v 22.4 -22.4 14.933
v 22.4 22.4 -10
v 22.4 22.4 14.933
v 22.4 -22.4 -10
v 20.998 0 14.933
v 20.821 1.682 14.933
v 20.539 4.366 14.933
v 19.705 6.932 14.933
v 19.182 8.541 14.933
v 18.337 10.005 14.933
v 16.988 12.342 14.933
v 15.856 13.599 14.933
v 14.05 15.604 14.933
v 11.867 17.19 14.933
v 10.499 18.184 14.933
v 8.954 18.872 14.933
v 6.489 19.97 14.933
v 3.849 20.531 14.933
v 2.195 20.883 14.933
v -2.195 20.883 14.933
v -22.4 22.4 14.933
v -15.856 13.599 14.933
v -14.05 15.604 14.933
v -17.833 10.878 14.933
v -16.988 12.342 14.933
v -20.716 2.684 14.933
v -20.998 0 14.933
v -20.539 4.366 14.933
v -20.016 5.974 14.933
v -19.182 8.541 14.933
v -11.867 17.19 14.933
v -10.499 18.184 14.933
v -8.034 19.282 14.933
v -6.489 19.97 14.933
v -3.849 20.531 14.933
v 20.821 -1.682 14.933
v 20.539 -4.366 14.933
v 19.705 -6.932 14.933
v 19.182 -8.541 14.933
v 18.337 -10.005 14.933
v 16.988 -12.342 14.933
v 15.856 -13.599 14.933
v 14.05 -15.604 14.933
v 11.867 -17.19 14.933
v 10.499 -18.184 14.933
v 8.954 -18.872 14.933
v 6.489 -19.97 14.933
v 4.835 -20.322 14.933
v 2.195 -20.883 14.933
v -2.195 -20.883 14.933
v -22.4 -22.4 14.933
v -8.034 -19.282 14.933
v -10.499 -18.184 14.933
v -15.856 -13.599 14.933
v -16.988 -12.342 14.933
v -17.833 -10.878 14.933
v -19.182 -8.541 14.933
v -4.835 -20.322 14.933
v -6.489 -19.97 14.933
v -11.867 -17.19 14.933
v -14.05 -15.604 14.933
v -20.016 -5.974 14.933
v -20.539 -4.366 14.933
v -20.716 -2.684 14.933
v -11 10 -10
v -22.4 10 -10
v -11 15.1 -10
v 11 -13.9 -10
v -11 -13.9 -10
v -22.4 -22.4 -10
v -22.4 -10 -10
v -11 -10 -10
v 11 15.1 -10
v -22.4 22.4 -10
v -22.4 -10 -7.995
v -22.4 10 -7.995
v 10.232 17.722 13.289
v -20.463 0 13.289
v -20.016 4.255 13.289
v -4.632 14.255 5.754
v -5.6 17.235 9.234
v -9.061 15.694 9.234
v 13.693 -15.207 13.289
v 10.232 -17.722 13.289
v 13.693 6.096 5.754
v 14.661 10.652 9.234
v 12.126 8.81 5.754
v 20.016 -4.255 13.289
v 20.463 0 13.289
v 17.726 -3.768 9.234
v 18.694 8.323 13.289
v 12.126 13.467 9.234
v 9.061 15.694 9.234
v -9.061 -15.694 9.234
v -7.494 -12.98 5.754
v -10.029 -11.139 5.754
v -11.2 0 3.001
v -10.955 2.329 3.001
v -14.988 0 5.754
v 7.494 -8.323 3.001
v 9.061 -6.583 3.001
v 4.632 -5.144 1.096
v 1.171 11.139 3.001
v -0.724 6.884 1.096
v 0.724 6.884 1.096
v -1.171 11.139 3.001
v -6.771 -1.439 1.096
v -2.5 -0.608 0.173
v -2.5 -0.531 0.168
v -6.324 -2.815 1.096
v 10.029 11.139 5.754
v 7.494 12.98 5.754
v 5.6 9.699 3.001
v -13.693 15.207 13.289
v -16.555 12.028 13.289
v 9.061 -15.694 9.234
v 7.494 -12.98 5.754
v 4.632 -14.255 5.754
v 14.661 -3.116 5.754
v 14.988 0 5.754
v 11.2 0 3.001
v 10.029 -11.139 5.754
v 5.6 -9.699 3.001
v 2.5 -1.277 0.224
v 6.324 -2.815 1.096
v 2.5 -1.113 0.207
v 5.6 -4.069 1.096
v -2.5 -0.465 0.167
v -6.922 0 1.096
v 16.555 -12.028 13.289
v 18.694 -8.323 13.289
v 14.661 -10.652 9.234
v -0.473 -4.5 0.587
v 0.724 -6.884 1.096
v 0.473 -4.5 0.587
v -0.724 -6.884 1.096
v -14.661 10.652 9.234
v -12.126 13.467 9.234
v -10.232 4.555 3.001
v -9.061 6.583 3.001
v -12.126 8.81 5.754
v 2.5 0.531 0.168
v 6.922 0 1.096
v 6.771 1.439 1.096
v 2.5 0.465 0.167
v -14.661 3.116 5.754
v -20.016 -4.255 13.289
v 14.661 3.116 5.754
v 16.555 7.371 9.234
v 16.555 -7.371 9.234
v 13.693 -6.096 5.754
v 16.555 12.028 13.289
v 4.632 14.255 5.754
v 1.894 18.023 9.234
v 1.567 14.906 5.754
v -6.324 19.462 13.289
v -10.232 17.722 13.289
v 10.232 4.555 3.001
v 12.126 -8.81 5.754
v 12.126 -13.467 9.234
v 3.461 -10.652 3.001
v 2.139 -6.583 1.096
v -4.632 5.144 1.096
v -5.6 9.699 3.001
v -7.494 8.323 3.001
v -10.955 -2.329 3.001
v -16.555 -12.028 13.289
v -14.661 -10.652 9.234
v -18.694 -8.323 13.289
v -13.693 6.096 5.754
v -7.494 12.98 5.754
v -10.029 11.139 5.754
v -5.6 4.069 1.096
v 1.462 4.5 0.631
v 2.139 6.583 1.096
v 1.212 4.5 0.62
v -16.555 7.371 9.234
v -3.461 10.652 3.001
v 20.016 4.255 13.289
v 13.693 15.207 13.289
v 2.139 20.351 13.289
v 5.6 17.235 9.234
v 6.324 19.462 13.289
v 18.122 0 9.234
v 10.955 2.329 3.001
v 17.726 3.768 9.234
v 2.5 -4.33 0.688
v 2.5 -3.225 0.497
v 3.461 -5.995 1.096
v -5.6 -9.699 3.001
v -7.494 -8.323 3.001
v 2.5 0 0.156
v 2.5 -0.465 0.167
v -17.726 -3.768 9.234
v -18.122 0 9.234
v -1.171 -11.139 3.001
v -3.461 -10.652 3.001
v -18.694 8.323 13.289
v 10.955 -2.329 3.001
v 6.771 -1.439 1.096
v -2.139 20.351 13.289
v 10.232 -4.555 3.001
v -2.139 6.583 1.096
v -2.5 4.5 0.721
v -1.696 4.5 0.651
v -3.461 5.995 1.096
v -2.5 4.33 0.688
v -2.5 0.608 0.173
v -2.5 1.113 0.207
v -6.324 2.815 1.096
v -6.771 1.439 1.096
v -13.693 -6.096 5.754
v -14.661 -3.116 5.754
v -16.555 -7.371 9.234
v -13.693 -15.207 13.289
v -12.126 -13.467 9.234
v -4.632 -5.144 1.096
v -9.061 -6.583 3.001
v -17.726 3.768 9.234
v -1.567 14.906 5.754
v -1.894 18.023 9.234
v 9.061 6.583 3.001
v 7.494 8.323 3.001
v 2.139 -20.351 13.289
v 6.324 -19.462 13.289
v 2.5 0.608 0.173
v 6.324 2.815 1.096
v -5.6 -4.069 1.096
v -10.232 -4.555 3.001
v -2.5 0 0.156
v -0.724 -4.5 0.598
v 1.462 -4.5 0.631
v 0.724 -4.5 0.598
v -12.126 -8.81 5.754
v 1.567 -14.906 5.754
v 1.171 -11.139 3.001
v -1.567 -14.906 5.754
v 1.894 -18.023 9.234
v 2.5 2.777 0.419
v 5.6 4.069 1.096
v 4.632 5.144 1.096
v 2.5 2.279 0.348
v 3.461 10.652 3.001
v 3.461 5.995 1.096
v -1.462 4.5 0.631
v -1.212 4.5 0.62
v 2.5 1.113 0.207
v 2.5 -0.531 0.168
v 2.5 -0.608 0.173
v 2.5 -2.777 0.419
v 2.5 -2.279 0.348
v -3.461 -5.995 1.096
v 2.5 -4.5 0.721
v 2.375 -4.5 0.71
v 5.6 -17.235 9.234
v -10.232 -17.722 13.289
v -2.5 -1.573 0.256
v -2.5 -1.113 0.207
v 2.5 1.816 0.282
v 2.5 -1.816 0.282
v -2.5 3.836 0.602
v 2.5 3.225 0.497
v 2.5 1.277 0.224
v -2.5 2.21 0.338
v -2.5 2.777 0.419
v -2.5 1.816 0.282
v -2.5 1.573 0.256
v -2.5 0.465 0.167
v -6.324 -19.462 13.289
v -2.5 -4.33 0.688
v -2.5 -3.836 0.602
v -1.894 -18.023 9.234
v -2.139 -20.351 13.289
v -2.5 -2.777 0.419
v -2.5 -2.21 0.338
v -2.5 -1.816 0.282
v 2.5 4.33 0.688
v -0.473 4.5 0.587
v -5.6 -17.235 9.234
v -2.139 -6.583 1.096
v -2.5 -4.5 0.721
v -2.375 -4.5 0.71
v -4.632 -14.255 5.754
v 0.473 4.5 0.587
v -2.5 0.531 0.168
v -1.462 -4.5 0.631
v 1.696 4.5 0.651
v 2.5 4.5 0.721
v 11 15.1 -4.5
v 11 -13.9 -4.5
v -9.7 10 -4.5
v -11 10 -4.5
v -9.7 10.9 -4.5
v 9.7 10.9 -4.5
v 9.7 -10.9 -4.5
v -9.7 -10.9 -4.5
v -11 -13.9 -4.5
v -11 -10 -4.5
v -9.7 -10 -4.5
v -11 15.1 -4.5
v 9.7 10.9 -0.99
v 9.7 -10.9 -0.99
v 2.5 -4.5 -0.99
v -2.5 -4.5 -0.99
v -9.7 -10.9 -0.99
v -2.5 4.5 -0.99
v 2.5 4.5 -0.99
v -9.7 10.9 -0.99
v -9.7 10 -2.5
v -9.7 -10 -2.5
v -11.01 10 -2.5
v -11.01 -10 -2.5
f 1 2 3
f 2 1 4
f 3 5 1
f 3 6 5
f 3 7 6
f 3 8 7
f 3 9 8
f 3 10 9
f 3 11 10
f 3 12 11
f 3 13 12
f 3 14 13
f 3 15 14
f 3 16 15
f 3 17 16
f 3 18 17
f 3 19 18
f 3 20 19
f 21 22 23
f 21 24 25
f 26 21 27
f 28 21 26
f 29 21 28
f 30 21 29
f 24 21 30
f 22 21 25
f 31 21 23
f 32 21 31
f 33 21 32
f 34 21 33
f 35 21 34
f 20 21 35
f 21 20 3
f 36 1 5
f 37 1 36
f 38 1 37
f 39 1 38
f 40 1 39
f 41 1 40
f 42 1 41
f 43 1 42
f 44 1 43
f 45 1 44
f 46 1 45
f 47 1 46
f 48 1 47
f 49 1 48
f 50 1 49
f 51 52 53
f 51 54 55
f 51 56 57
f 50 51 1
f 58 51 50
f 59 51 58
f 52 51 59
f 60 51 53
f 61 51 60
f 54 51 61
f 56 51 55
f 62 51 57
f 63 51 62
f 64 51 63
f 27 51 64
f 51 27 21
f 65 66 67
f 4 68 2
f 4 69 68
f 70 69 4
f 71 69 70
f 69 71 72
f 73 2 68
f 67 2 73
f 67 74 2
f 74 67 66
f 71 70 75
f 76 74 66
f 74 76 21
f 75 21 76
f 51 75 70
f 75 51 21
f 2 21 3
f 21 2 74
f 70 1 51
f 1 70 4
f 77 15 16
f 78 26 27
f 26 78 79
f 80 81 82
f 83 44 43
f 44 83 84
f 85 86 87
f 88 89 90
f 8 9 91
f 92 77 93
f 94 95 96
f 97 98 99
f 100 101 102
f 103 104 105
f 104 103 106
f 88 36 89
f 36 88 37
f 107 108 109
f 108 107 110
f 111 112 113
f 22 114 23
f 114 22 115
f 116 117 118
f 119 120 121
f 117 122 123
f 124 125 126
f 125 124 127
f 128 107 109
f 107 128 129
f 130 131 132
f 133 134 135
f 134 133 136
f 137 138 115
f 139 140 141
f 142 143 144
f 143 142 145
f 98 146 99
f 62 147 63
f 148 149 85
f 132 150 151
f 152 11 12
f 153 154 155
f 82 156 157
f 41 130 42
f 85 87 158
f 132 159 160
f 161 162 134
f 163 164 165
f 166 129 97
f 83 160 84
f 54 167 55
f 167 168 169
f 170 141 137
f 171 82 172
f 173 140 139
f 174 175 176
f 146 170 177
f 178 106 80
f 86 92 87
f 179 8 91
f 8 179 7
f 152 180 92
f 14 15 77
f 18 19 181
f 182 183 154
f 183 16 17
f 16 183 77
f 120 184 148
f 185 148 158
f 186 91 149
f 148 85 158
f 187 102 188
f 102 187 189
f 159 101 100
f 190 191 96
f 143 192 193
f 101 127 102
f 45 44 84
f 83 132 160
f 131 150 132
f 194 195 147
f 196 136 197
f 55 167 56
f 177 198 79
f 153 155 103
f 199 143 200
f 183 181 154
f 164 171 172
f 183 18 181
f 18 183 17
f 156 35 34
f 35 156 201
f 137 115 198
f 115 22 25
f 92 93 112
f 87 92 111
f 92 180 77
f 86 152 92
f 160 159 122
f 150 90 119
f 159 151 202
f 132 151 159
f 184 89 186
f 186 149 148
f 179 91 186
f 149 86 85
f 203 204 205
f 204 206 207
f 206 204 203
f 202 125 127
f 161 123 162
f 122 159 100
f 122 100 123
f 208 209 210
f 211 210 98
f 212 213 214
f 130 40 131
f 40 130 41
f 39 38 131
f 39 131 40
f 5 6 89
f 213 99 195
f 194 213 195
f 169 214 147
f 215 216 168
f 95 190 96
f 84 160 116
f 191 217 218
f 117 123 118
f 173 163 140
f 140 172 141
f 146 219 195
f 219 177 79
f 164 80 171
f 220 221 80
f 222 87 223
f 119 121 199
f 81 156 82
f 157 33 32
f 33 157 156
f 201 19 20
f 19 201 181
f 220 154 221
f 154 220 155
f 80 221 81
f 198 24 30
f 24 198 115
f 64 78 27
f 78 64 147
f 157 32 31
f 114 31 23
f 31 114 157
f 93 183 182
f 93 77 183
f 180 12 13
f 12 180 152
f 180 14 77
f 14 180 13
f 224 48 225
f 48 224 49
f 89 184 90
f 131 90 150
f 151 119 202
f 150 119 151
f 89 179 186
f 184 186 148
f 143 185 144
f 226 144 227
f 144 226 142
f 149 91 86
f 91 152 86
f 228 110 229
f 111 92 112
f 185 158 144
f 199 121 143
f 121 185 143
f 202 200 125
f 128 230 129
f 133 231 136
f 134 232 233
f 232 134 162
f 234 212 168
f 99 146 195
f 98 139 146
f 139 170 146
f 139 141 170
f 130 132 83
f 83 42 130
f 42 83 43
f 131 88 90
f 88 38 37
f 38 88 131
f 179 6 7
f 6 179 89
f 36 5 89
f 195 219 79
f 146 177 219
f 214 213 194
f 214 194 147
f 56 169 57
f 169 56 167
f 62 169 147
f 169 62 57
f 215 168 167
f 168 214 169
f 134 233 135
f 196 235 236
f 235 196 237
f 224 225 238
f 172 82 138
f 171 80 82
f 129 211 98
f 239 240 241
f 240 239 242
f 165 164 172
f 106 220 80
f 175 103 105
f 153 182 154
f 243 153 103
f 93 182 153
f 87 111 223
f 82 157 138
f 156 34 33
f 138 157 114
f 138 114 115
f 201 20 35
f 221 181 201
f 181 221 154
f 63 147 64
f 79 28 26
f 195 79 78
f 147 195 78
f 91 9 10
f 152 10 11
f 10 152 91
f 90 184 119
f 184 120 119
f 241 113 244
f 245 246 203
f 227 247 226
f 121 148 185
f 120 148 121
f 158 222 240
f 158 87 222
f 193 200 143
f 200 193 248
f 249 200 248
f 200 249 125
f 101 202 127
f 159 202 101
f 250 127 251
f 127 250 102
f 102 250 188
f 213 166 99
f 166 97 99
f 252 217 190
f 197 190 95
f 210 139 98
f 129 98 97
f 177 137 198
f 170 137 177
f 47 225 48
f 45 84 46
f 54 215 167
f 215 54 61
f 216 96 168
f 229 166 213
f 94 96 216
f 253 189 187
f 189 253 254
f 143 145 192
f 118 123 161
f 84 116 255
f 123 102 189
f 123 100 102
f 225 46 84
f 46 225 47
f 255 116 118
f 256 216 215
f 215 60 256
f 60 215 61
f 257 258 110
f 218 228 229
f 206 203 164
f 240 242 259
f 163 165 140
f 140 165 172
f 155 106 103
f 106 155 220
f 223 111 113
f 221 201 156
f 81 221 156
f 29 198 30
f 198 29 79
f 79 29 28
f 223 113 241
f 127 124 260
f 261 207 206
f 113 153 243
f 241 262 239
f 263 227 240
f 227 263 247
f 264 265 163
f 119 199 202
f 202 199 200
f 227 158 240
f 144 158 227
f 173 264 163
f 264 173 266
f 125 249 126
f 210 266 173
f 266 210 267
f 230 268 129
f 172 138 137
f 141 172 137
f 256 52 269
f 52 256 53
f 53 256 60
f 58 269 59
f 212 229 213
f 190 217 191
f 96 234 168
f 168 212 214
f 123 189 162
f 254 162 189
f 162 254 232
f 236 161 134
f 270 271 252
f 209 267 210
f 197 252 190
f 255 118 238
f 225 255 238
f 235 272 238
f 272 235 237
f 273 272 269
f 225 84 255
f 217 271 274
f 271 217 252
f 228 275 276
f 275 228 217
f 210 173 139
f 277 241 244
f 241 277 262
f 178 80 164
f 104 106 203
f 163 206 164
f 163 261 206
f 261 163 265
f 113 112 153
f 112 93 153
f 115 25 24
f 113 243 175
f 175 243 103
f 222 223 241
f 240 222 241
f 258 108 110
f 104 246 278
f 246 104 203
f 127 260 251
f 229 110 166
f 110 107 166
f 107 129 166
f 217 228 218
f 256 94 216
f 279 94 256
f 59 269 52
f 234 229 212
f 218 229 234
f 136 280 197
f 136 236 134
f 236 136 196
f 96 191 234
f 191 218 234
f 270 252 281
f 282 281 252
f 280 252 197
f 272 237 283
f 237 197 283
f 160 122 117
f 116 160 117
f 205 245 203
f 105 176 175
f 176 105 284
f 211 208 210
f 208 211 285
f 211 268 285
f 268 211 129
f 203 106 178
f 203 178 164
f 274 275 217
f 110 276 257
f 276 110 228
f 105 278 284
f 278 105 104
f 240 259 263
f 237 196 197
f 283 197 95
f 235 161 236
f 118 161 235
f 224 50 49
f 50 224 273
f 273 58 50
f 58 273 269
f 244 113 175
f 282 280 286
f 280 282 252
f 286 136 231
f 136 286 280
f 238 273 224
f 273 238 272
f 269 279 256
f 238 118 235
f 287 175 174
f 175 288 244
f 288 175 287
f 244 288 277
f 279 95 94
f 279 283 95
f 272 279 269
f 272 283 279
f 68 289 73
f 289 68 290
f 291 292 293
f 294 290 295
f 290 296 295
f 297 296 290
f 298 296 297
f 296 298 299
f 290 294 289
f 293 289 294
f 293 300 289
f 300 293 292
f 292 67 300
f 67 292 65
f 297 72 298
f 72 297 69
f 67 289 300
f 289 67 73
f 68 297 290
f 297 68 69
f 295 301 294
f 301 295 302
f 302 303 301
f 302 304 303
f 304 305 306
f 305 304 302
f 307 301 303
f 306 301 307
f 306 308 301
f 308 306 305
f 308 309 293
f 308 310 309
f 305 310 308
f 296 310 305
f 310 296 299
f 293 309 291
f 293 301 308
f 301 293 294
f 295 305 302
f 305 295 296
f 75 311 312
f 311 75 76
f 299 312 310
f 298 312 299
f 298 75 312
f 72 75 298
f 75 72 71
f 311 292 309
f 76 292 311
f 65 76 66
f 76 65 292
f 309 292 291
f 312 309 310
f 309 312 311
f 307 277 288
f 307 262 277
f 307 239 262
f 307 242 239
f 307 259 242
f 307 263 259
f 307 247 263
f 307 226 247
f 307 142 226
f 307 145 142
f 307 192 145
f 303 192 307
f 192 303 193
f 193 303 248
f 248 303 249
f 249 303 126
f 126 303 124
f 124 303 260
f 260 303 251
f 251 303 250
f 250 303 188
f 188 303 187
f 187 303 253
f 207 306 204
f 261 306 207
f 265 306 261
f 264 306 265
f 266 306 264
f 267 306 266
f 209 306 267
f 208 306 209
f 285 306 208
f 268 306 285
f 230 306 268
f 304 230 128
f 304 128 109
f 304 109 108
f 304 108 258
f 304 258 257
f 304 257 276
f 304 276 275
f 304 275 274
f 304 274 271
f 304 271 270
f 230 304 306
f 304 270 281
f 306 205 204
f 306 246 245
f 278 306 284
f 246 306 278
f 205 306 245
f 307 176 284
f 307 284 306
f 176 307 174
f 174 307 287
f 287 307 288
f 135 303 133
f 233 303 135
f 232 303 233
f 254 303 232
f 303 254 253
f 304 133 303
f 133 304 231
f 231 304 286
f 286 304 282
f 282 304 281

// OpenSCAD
track_stand();

module track_stand() {
  e = 0.01;

	ball_dia = 44.3;
  ball_tolerance = 0.5;
  hole_dia = ball_dia + ball_tolerance;

  assembly_cavity_dz = 10.0;
  cavity_offset_dz = 1.0;
  lens_cavity_dx = 19.4;
  lens_cavity_dy = 21.8;
  lens_cavity_dz = 3.5;
  board_cavity_dx = 22.0;
  board_cavity_dy = 29.0;
  board_cavity_dz = assembly_cavity_dz - lens_cavity_dz - cavity_offset_dz;
  board_cavity_offset_dy = 13.9;
  wire_cavity_dy = 20.0;
  wire_cavity_outer_dz = 2.0;
  wire_cavity_inner_dz = board_cavity_dz + 2.0;

  optics_cavity_dx = 5.0;
  optics_cavity_dy = 9.0;
  optics_cavity_dz = hole_dia/2;

  *translate([0, 0, ball_dia/2]) {
    color("DarkRed") sphere(d=ball_dia);
  }
  *PMW3360_assembly();
  translate([-hole_dia/2, -hole_dia/2, 0]) {
    color("MediumBlue") {
      // Main body
      difference() {
        translate([0, 0, -assembly_cavity_dz]) {
          cube([hole_dia, hole_dia, assembly_cavity_dz+hole_dia/3]);
        }
        translate([hole_dia/2, hole_dia/2, hole_dia/2]) {
          sphere(d=hole_dia);
        }
        // Sensor cavity
        translate([hole_dia/2-board_cavity_dx/2, hole_dia/2-board_cavity_offset_dy, -assembly_cavity_dz-e]) {
          cube([board_cavity_dx, board_cavity_dy, board_cavity_dz+e]);
        }
        translate([hole_dia/2-lens_cavity_dx/2, hole_dia/2-lens_cavity_dy/2, -assembly_cavity_dz+board_cavity_dz-e]) {
          cube([lens_cavity_dx, lens_cavity_dy, lens_cavity_dz+2*e]);
        }
        hull() {
          translate([0, hole_dia/2-wire_cavity_dy/2, -assembly_cavity_dz-e]) {
            translate([-e, 0, 0]) {
              cube([1, wire_cavity_dy, wire_cavity_outer_dz+e]);
              translate([hole_dia/2-board_cavity_dx/2, 0, 0]) {
                cube([wire_cavity_outer_dz, wire_cavity_dy, wire_cavity_inner_dz+e]);
              }
            }
          }
        }
        // Optics cavity
        translate([hole_dia/2-optics_cavity_dx/2, hole_dia/2-optics_cavity_dy/2, -cavity_offset_dz-e]) {
          cube([optics_cavity_dx, optics_cavity_dy, optics_cavity_dz]);
        }
      }
    }
  }
}

module PMW3360_assembly() {
  // Mock-up of a PCB with mounted PMW3360 sensor and LM19-LSI lens for fitting
  // https://www.tindie.com/products/jkicklighter/pmw3360-motion-sensor/

  e = 0.01;

  board_dx = 21.1;
  board_dy = 28.3;
  board_dz = 1.6;

  hole_dia = 2.4;
  hole_coords = [[board_dx/2, hole_dia/2+1.0, 0],
                 [board_dx/2, board_dy-(hole_dia/2+0.7), 0]];

  lens_dx = 18.9;
  lens_dy = 21.3;
  lens_dz = 3.5;
  lens_corner_rad = 7.0;
  lens_center = [board_dx/2, 13.6, 0];
  lens_wedge_dz = 1.0;
  lens_wedge_dx = 4.0;
  lens_wedge_offset_dz = 3.5;

  chip_dx = 10.0;
  chip_dy = 15.6;
  chip_dz = 2.5;
  chip_offset_dy = 5.6;

  translate([0, 0, -board_dz-lens_dz-lens_wedge_dz]) {
    // PCB
    color("DarkGreen") translate(-lens_center) difference() {
      cube([board_dx, board_dy, board_dz]);
      for(coords = hole_coords) {
        translate(coords) translate([0, 0, -e]) cylinder(d=hole_dia, h=board_dz+2*e);
      }
    }
    // Lens (LM19-LSI)
    color("LightBlue") {
      translate([-lens_dx/2, -lens_dy/2, board_dz-e]) {
        difference() {
          cube([lens_dx, lens_dy, lens_dz+e]);
          for(i = [[0, [0, 0, 0]],
                   [90, [lens_dx, 0, 0]],
                   [180, [lens_dx, lens_dy, 0]],
                   [270, [0, lens_dy, 0]]]) {
            translate(i[1]) rotate([0, 0, i[0]]) {
              translate([-e, -e, -e]) difference() {
              cube([lens_corner_rad+e, lens_corner_rad+e, lens_dz+3*e]);
                translate([lens_corner_rad, lens_corner_rad, -e]) {
                  cylinder(r=lens_corner_rad, h=lens_dz+4*e);
                }
              }
            }
          }
        }
      }
      translate([-lens_wedge_dx/2, 0, board_dz+lens_dz-e]) {
        cube([lens_wedge_dx, lens_wedge_offset_dz+lens_wedge_dz/2, lens_wedge_dz+e]);
      }
    }
    // Chip (PMW3360)
    color("DimGray") translate([-chip_dx/2, chip_offset_dy-board_dy/2, -chip_dz]) {
      cube([chip_dx, chip_dy, chip_dz]);
    }
  }
}
